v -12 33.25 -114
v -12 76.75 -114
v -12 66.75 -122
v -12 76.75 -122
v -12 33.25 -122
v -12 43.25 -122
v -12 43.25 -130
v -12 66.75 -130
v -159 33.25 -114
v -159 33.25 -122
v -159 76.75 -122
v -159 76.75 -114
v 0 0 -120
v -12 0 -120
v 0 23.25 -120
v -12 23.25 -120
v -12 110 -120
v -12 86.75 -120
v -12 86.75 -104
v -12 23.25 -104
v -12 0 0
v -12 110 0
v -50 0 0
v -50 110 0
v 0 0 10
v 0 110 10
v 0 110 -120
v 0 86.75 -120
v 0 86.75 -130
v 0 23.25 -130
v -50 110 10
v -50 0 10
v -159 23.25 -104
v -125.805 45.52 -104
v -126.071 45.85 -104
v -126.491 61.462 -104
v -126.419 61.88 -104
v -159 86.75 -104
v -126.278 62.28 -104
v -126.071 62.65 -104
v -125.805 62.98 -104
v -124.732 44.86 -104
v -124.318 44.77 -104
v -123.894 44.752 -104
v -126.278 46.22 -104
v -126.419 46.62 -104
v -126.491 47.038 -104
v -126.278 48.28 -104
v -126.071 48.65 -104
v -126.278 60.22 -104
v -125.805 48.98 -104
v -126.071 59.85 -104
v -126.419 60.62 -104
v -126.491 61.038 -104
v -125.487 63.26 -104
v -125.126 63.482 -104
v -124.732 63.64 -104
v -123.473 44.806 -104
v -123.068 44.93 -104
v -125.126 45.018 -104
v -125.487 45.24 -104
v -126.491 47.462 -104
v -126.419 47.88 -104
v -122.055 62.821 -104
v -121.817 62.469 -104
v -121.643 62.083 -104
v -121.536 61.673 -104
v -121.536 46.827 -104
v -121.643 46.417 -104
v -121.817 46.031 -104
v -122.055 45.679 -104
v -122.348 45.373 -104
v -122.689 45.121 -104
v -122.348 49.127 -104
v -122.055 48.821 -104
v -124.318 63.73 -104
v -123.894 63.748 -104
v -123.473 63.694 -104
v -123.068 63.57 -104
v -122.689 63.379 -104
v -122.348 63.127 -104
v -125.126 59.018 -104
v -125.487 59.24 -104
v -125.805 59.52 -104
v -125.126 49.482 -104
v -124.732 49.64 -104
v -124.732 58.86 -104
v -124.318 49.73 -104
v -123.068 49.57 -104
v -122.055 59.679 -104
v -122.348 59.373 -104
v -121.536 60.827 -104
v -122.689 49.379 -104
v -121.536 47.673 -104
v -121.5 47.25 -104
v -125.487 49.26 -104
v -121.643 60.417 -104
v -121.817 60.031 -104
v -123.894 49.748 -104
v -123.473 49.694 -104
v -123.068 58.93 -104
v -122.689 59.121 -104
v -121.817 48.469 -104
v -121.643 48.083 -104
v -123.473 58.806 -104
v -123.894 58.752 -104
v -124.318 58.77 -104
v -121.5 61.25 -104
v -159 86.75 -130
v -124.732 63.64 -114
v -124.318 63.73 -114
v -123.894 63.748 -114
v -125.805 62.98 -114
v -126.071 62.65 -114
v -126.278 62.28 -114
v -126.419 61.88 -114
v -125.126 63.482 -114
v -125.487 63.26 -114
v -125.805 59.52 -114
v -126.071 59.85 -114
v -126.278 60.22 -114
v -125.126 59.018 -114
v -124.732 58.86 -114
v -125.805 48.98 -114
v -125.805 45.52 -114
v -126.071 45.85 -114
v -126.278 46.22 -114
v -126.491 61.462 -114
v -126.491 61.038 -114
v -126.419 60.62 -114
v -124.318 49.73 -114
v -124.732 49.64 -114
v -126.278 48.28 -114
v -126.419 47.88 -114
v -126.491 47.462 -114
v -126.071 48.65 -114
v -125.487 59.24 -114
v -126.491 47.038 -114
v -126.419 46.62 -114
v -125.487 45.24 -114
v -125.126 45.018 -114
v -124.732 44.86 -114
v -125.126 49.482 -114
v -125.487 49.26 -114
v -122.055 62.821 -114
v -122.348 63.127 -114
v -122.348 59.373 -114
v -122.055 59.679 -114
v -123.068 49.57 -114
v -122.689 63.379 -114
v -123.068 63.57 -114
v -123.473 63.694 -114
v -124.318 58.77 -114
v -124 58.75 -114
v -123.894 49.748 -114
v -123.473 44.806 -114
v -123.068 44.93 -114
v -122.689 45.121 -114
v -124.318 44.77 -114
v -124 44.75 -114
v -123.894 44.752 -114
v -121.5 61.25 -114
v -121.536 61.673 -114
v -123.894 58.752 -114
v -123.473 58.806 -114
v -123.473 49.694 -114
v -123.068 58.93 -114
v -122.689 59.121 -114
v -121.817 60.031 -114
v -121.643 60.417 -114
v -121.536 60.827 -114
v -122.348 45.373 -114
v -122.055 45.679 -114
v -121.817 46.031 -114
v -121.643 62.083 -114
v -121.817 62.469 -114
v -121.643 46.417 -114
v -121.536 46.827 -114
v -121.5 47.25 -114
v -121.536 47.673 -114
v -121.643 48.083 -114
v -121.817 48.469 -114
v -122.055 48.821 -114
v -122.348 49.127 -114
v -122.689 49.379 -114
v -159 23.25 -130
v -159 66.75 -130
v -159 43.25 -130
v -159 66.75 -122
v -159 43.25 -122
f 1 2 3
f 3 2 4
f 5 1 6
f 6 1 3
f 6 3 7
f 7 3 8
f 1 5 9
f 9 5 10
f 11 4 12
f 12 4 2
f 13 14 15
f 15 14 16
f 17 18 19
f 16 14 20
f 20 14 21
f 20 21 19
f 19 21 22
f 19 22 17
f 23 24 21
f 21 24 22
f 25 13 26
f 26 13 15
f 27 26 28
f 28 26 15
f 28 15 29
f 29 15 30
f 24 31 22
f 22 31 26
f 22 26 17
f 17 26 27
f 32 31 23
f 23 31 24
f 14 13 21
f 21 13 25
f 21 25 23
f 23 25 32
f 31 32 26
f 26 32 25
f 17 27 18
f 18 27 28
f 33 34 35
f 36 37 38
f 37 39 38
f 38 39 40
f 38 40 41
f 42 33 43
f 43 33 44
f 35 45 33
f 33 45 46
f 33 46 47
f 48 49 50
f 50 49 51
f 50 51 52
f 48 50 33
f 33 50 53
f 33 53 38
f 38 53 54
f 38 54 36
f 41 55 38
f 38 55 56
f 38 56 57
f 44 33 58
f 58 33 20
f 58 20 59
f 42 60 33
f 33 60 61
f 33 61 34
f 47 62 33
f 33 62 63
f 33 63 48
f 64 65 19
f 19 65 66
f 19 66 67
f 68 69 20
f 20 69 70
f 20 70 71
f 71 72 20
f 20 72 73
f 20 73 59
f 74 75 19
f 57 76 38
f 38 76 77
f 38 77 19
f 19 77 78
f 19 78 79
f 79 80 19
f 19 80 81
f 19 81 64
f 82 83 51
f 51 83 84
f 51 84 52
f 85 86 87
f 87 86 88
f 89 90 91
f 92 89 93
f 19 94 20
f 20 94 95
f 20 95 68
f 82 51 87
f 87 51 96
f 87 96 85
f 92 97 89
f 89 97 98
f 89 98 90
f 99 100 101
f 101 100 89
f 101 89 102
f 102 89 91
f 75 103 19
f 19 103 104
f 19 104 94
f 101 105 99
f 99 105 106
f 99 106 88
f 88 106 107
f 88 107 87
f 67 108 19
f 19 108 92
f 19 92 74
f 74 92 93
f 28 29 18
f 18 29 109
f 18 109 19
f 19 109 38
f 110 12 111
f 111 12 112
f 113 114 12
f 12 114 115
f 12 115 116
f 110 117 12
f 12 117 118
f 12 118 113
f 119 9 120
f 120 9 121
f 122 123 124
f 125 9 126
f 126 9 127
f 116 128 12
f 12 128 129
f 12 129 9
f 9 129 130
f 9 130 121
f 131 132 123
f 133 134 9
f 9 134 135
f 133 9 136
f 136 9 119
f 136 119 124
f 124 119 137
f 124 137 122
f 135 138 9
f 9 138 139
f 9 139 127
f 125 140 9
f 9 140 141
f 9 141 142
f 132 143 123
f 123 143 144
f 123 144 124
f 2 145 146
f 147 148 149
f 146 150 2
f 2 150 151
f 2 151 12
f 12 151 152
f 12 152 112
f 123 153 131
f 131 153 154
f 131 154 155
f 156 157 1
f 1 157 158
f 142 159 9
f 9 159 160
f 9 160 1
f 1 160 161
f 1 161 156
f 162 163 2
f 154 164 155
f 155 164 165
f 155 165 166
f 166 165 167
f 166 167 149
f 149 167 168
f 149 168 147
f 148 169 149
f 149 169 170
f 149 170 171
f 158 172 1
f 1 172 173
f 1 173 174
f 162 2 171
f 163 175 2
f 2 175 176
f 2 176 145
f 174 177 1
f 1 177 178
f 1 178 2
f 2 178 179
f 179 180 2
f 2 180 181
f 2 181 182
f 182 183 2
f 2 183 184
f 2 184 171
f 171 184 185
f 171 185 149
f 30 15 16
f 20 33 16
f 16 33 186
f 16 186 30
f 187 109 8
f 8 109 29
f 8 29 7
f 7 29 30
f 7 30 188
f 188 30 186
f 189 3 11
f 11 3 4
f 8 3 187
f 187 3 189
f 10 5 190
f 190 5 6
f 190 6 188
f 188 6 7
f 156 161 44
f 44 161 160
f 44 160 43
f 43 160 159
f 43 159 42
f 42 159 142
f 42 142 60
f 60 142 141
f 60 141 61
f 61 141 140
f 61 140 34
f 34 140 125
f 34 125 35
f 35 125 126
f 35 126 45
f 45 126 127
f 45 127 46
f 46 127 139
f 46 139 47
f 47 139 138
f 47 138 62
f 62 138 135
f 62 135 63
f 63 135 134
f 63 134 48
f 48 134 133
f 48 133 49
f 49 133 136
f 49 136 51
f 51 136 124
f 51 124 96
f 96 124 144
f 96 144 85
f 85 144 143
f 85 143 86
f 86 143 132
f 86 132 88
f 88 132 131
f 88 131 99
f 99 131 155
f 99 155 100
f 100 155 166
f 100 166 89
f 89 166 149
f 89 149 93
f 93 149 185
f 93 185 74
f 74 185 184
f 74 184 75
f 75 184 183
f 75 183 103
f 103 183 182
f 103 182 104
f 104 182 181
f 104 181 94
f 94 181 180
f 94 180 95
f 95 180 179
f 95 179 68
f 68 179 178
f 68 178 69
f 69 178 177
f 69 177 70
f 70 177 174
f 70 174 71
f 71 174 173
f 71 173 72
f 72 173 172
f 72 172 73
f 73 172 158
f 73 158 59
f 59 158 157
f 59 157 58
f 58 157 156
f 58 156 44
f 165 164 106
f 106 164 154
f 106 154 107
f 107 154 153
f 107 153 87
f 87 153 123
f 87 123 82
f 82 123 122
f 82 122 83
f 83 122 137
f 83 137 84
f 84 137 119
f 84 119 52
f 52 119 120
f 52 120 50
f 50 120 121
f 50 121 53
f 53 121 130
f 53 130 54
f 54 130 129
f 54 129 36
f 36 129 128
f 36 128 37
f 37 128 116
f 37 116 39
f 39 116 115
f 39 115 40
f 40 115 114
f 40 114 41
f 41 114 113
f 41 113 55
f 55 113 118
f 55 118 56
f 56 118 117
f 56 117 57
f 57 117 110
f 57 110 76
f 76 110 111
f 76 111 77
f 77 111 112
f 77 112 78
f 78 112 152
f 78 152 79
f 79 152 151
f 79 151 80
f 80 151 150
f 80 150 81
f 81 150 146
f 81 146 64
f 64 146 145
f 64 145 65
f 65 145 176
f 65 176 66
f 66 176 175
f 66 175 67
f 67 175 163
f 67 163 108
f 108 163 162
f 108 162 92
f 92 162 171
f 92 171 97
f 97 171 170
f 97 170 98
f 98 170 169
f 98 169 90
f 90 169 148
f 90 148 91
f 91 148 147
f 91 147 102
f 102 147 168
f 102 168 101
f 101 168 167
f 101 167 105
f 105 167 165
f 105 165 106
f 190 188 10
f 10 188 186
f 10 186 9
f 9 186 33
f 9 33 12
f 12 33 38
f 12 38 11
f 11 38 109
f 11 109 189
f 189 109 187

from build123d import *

# Parameters (mm, degrees)
SKETCH1_W           = 50
SKETCH1_H           = 110
BOSS_EXTRUDE1_DEPTH = 10
SKETCH2_W           = 12
SKETCH2_H           = 110
BOSS_EXTRUDE2_DEPTH = 120
BOSS_EXTRUDE4_DEPTH = 152
BOSS_EXTRUDE5_DEPTH = 10
SKETCH5_W           = 152
SKETCH5_H           = 8
BOSS_EXTRUDE6_DEPTH = 10
SKETCH6_W           = 152
SKETCH6_H           = 8
BOSS_EXTRUDE7_DEPTH = 10
SKETCH7_R           = 2.5
CUT_EXTRUDE1_DEPTH  = 87
SKETCH8_W           = 26
SKETCH8_H           = 63.5
CUT_EXTRUDE2_DEPTH  = 5


with BuildPart() as part:
    # Sketch1 → Boss-Extrude1 (new body)
    with BuildSketch(Plane.XY):
        with Locations((-25, 55)):
            Rectangle(SKETCH1_W, SKETCH1_H)
    extrude(amount=BOSS_EXTRUDE1_DEPTH)

    # Sketch2 → Boss-Extrude2 (add)
    with BuildSketch(Plane(origin=(0, 0, 0), x_dir=(-1, 0, 0), z_dir=(0, 0, -1))):
        with Locations((6, 55)):
            Rectangle(SKETCH2_W, SKETCH2_H)
    extrude(amount=BOSS_EXTRUDE2_DEPTH)

    # Sketch3 → Boss-Extrude4 (add)
    with BuildSketch(Plane.ZY.offset(12)):
        Polygon((-120, 86.75), (-120, 76.75), (-114, 76.75), (-114, 33.25), (-120, 33.25), (-120, 23.25), (-104, 23.25), (-104, 86.75), align=None)
    extrude(amount=BOSS_EXTRUDE4_DEPTH)

    # Sketch4 → Boss-Extrude5 (add)
    with BuildSketch(Plane(origin=(0, 0, -120), x_dir=(-1, 0, 0), z_dir=(0, 0, -1))):
        Polygon((12, 86.75), (0, 86.75), (0, 23.25), (12, 23.25), (164, 23.25), (164, 33.25), (12, 33.25), (12, 76.75), (164, 76.75), (164, 86.75), align=None)
    extrude(amount=BOSS_EXTRUDE5_DEPTH)

    # Sketch5 → Boss-Extrude6 (add)
    with BuildSketch(Plane.XZ.offset(-76.75)):
        with Locations((-88, -126)):
            Rectangle(SKETCH5_W, SKETCH5_H)
    extrude(amount=BOSS_EXTRUDE6_DEPTH)

    # Sketch6 → Boss-Extrude7 (add)
    with BuildSketch(Plane(origin=(0, 33.25, 0), x_dir=(1, 0, 0), z_dir=(0, 1, 0))):
        with Locations((-88, 126)):
            Rectangle(SKETCH6_W, SKETCH6_H)
    extrude(amount=BOSS_EXTRUDE7_DEPTH)

    # Sketch7 → Cut-Extrude1 (cut)
    with BuildSketch(Plane.XY.offset(-104)):
        with Locations((-124, 61.25)):
            Circle(SKETCH7_R)
        with Locations((-124, 47.25)):
            Circle(SKETCH7_R)
    extrude(amount=-CUT_EXTRUDE1_DEPTH, mode=Mode.SUBTRACT)

    # Sketch8 → Cut-Extrude2 (cut)
    with BuildSketch(Plane.ZY.offset(164)):
        with Locations((-117, 55)):
            Rectangle(SKETCH8_W, SKETCH8_H)
    extrude(amount=-CUT_EXTRUDE2_DEPTH, mode=Mode.SUBTRACT)


solid = part.part
